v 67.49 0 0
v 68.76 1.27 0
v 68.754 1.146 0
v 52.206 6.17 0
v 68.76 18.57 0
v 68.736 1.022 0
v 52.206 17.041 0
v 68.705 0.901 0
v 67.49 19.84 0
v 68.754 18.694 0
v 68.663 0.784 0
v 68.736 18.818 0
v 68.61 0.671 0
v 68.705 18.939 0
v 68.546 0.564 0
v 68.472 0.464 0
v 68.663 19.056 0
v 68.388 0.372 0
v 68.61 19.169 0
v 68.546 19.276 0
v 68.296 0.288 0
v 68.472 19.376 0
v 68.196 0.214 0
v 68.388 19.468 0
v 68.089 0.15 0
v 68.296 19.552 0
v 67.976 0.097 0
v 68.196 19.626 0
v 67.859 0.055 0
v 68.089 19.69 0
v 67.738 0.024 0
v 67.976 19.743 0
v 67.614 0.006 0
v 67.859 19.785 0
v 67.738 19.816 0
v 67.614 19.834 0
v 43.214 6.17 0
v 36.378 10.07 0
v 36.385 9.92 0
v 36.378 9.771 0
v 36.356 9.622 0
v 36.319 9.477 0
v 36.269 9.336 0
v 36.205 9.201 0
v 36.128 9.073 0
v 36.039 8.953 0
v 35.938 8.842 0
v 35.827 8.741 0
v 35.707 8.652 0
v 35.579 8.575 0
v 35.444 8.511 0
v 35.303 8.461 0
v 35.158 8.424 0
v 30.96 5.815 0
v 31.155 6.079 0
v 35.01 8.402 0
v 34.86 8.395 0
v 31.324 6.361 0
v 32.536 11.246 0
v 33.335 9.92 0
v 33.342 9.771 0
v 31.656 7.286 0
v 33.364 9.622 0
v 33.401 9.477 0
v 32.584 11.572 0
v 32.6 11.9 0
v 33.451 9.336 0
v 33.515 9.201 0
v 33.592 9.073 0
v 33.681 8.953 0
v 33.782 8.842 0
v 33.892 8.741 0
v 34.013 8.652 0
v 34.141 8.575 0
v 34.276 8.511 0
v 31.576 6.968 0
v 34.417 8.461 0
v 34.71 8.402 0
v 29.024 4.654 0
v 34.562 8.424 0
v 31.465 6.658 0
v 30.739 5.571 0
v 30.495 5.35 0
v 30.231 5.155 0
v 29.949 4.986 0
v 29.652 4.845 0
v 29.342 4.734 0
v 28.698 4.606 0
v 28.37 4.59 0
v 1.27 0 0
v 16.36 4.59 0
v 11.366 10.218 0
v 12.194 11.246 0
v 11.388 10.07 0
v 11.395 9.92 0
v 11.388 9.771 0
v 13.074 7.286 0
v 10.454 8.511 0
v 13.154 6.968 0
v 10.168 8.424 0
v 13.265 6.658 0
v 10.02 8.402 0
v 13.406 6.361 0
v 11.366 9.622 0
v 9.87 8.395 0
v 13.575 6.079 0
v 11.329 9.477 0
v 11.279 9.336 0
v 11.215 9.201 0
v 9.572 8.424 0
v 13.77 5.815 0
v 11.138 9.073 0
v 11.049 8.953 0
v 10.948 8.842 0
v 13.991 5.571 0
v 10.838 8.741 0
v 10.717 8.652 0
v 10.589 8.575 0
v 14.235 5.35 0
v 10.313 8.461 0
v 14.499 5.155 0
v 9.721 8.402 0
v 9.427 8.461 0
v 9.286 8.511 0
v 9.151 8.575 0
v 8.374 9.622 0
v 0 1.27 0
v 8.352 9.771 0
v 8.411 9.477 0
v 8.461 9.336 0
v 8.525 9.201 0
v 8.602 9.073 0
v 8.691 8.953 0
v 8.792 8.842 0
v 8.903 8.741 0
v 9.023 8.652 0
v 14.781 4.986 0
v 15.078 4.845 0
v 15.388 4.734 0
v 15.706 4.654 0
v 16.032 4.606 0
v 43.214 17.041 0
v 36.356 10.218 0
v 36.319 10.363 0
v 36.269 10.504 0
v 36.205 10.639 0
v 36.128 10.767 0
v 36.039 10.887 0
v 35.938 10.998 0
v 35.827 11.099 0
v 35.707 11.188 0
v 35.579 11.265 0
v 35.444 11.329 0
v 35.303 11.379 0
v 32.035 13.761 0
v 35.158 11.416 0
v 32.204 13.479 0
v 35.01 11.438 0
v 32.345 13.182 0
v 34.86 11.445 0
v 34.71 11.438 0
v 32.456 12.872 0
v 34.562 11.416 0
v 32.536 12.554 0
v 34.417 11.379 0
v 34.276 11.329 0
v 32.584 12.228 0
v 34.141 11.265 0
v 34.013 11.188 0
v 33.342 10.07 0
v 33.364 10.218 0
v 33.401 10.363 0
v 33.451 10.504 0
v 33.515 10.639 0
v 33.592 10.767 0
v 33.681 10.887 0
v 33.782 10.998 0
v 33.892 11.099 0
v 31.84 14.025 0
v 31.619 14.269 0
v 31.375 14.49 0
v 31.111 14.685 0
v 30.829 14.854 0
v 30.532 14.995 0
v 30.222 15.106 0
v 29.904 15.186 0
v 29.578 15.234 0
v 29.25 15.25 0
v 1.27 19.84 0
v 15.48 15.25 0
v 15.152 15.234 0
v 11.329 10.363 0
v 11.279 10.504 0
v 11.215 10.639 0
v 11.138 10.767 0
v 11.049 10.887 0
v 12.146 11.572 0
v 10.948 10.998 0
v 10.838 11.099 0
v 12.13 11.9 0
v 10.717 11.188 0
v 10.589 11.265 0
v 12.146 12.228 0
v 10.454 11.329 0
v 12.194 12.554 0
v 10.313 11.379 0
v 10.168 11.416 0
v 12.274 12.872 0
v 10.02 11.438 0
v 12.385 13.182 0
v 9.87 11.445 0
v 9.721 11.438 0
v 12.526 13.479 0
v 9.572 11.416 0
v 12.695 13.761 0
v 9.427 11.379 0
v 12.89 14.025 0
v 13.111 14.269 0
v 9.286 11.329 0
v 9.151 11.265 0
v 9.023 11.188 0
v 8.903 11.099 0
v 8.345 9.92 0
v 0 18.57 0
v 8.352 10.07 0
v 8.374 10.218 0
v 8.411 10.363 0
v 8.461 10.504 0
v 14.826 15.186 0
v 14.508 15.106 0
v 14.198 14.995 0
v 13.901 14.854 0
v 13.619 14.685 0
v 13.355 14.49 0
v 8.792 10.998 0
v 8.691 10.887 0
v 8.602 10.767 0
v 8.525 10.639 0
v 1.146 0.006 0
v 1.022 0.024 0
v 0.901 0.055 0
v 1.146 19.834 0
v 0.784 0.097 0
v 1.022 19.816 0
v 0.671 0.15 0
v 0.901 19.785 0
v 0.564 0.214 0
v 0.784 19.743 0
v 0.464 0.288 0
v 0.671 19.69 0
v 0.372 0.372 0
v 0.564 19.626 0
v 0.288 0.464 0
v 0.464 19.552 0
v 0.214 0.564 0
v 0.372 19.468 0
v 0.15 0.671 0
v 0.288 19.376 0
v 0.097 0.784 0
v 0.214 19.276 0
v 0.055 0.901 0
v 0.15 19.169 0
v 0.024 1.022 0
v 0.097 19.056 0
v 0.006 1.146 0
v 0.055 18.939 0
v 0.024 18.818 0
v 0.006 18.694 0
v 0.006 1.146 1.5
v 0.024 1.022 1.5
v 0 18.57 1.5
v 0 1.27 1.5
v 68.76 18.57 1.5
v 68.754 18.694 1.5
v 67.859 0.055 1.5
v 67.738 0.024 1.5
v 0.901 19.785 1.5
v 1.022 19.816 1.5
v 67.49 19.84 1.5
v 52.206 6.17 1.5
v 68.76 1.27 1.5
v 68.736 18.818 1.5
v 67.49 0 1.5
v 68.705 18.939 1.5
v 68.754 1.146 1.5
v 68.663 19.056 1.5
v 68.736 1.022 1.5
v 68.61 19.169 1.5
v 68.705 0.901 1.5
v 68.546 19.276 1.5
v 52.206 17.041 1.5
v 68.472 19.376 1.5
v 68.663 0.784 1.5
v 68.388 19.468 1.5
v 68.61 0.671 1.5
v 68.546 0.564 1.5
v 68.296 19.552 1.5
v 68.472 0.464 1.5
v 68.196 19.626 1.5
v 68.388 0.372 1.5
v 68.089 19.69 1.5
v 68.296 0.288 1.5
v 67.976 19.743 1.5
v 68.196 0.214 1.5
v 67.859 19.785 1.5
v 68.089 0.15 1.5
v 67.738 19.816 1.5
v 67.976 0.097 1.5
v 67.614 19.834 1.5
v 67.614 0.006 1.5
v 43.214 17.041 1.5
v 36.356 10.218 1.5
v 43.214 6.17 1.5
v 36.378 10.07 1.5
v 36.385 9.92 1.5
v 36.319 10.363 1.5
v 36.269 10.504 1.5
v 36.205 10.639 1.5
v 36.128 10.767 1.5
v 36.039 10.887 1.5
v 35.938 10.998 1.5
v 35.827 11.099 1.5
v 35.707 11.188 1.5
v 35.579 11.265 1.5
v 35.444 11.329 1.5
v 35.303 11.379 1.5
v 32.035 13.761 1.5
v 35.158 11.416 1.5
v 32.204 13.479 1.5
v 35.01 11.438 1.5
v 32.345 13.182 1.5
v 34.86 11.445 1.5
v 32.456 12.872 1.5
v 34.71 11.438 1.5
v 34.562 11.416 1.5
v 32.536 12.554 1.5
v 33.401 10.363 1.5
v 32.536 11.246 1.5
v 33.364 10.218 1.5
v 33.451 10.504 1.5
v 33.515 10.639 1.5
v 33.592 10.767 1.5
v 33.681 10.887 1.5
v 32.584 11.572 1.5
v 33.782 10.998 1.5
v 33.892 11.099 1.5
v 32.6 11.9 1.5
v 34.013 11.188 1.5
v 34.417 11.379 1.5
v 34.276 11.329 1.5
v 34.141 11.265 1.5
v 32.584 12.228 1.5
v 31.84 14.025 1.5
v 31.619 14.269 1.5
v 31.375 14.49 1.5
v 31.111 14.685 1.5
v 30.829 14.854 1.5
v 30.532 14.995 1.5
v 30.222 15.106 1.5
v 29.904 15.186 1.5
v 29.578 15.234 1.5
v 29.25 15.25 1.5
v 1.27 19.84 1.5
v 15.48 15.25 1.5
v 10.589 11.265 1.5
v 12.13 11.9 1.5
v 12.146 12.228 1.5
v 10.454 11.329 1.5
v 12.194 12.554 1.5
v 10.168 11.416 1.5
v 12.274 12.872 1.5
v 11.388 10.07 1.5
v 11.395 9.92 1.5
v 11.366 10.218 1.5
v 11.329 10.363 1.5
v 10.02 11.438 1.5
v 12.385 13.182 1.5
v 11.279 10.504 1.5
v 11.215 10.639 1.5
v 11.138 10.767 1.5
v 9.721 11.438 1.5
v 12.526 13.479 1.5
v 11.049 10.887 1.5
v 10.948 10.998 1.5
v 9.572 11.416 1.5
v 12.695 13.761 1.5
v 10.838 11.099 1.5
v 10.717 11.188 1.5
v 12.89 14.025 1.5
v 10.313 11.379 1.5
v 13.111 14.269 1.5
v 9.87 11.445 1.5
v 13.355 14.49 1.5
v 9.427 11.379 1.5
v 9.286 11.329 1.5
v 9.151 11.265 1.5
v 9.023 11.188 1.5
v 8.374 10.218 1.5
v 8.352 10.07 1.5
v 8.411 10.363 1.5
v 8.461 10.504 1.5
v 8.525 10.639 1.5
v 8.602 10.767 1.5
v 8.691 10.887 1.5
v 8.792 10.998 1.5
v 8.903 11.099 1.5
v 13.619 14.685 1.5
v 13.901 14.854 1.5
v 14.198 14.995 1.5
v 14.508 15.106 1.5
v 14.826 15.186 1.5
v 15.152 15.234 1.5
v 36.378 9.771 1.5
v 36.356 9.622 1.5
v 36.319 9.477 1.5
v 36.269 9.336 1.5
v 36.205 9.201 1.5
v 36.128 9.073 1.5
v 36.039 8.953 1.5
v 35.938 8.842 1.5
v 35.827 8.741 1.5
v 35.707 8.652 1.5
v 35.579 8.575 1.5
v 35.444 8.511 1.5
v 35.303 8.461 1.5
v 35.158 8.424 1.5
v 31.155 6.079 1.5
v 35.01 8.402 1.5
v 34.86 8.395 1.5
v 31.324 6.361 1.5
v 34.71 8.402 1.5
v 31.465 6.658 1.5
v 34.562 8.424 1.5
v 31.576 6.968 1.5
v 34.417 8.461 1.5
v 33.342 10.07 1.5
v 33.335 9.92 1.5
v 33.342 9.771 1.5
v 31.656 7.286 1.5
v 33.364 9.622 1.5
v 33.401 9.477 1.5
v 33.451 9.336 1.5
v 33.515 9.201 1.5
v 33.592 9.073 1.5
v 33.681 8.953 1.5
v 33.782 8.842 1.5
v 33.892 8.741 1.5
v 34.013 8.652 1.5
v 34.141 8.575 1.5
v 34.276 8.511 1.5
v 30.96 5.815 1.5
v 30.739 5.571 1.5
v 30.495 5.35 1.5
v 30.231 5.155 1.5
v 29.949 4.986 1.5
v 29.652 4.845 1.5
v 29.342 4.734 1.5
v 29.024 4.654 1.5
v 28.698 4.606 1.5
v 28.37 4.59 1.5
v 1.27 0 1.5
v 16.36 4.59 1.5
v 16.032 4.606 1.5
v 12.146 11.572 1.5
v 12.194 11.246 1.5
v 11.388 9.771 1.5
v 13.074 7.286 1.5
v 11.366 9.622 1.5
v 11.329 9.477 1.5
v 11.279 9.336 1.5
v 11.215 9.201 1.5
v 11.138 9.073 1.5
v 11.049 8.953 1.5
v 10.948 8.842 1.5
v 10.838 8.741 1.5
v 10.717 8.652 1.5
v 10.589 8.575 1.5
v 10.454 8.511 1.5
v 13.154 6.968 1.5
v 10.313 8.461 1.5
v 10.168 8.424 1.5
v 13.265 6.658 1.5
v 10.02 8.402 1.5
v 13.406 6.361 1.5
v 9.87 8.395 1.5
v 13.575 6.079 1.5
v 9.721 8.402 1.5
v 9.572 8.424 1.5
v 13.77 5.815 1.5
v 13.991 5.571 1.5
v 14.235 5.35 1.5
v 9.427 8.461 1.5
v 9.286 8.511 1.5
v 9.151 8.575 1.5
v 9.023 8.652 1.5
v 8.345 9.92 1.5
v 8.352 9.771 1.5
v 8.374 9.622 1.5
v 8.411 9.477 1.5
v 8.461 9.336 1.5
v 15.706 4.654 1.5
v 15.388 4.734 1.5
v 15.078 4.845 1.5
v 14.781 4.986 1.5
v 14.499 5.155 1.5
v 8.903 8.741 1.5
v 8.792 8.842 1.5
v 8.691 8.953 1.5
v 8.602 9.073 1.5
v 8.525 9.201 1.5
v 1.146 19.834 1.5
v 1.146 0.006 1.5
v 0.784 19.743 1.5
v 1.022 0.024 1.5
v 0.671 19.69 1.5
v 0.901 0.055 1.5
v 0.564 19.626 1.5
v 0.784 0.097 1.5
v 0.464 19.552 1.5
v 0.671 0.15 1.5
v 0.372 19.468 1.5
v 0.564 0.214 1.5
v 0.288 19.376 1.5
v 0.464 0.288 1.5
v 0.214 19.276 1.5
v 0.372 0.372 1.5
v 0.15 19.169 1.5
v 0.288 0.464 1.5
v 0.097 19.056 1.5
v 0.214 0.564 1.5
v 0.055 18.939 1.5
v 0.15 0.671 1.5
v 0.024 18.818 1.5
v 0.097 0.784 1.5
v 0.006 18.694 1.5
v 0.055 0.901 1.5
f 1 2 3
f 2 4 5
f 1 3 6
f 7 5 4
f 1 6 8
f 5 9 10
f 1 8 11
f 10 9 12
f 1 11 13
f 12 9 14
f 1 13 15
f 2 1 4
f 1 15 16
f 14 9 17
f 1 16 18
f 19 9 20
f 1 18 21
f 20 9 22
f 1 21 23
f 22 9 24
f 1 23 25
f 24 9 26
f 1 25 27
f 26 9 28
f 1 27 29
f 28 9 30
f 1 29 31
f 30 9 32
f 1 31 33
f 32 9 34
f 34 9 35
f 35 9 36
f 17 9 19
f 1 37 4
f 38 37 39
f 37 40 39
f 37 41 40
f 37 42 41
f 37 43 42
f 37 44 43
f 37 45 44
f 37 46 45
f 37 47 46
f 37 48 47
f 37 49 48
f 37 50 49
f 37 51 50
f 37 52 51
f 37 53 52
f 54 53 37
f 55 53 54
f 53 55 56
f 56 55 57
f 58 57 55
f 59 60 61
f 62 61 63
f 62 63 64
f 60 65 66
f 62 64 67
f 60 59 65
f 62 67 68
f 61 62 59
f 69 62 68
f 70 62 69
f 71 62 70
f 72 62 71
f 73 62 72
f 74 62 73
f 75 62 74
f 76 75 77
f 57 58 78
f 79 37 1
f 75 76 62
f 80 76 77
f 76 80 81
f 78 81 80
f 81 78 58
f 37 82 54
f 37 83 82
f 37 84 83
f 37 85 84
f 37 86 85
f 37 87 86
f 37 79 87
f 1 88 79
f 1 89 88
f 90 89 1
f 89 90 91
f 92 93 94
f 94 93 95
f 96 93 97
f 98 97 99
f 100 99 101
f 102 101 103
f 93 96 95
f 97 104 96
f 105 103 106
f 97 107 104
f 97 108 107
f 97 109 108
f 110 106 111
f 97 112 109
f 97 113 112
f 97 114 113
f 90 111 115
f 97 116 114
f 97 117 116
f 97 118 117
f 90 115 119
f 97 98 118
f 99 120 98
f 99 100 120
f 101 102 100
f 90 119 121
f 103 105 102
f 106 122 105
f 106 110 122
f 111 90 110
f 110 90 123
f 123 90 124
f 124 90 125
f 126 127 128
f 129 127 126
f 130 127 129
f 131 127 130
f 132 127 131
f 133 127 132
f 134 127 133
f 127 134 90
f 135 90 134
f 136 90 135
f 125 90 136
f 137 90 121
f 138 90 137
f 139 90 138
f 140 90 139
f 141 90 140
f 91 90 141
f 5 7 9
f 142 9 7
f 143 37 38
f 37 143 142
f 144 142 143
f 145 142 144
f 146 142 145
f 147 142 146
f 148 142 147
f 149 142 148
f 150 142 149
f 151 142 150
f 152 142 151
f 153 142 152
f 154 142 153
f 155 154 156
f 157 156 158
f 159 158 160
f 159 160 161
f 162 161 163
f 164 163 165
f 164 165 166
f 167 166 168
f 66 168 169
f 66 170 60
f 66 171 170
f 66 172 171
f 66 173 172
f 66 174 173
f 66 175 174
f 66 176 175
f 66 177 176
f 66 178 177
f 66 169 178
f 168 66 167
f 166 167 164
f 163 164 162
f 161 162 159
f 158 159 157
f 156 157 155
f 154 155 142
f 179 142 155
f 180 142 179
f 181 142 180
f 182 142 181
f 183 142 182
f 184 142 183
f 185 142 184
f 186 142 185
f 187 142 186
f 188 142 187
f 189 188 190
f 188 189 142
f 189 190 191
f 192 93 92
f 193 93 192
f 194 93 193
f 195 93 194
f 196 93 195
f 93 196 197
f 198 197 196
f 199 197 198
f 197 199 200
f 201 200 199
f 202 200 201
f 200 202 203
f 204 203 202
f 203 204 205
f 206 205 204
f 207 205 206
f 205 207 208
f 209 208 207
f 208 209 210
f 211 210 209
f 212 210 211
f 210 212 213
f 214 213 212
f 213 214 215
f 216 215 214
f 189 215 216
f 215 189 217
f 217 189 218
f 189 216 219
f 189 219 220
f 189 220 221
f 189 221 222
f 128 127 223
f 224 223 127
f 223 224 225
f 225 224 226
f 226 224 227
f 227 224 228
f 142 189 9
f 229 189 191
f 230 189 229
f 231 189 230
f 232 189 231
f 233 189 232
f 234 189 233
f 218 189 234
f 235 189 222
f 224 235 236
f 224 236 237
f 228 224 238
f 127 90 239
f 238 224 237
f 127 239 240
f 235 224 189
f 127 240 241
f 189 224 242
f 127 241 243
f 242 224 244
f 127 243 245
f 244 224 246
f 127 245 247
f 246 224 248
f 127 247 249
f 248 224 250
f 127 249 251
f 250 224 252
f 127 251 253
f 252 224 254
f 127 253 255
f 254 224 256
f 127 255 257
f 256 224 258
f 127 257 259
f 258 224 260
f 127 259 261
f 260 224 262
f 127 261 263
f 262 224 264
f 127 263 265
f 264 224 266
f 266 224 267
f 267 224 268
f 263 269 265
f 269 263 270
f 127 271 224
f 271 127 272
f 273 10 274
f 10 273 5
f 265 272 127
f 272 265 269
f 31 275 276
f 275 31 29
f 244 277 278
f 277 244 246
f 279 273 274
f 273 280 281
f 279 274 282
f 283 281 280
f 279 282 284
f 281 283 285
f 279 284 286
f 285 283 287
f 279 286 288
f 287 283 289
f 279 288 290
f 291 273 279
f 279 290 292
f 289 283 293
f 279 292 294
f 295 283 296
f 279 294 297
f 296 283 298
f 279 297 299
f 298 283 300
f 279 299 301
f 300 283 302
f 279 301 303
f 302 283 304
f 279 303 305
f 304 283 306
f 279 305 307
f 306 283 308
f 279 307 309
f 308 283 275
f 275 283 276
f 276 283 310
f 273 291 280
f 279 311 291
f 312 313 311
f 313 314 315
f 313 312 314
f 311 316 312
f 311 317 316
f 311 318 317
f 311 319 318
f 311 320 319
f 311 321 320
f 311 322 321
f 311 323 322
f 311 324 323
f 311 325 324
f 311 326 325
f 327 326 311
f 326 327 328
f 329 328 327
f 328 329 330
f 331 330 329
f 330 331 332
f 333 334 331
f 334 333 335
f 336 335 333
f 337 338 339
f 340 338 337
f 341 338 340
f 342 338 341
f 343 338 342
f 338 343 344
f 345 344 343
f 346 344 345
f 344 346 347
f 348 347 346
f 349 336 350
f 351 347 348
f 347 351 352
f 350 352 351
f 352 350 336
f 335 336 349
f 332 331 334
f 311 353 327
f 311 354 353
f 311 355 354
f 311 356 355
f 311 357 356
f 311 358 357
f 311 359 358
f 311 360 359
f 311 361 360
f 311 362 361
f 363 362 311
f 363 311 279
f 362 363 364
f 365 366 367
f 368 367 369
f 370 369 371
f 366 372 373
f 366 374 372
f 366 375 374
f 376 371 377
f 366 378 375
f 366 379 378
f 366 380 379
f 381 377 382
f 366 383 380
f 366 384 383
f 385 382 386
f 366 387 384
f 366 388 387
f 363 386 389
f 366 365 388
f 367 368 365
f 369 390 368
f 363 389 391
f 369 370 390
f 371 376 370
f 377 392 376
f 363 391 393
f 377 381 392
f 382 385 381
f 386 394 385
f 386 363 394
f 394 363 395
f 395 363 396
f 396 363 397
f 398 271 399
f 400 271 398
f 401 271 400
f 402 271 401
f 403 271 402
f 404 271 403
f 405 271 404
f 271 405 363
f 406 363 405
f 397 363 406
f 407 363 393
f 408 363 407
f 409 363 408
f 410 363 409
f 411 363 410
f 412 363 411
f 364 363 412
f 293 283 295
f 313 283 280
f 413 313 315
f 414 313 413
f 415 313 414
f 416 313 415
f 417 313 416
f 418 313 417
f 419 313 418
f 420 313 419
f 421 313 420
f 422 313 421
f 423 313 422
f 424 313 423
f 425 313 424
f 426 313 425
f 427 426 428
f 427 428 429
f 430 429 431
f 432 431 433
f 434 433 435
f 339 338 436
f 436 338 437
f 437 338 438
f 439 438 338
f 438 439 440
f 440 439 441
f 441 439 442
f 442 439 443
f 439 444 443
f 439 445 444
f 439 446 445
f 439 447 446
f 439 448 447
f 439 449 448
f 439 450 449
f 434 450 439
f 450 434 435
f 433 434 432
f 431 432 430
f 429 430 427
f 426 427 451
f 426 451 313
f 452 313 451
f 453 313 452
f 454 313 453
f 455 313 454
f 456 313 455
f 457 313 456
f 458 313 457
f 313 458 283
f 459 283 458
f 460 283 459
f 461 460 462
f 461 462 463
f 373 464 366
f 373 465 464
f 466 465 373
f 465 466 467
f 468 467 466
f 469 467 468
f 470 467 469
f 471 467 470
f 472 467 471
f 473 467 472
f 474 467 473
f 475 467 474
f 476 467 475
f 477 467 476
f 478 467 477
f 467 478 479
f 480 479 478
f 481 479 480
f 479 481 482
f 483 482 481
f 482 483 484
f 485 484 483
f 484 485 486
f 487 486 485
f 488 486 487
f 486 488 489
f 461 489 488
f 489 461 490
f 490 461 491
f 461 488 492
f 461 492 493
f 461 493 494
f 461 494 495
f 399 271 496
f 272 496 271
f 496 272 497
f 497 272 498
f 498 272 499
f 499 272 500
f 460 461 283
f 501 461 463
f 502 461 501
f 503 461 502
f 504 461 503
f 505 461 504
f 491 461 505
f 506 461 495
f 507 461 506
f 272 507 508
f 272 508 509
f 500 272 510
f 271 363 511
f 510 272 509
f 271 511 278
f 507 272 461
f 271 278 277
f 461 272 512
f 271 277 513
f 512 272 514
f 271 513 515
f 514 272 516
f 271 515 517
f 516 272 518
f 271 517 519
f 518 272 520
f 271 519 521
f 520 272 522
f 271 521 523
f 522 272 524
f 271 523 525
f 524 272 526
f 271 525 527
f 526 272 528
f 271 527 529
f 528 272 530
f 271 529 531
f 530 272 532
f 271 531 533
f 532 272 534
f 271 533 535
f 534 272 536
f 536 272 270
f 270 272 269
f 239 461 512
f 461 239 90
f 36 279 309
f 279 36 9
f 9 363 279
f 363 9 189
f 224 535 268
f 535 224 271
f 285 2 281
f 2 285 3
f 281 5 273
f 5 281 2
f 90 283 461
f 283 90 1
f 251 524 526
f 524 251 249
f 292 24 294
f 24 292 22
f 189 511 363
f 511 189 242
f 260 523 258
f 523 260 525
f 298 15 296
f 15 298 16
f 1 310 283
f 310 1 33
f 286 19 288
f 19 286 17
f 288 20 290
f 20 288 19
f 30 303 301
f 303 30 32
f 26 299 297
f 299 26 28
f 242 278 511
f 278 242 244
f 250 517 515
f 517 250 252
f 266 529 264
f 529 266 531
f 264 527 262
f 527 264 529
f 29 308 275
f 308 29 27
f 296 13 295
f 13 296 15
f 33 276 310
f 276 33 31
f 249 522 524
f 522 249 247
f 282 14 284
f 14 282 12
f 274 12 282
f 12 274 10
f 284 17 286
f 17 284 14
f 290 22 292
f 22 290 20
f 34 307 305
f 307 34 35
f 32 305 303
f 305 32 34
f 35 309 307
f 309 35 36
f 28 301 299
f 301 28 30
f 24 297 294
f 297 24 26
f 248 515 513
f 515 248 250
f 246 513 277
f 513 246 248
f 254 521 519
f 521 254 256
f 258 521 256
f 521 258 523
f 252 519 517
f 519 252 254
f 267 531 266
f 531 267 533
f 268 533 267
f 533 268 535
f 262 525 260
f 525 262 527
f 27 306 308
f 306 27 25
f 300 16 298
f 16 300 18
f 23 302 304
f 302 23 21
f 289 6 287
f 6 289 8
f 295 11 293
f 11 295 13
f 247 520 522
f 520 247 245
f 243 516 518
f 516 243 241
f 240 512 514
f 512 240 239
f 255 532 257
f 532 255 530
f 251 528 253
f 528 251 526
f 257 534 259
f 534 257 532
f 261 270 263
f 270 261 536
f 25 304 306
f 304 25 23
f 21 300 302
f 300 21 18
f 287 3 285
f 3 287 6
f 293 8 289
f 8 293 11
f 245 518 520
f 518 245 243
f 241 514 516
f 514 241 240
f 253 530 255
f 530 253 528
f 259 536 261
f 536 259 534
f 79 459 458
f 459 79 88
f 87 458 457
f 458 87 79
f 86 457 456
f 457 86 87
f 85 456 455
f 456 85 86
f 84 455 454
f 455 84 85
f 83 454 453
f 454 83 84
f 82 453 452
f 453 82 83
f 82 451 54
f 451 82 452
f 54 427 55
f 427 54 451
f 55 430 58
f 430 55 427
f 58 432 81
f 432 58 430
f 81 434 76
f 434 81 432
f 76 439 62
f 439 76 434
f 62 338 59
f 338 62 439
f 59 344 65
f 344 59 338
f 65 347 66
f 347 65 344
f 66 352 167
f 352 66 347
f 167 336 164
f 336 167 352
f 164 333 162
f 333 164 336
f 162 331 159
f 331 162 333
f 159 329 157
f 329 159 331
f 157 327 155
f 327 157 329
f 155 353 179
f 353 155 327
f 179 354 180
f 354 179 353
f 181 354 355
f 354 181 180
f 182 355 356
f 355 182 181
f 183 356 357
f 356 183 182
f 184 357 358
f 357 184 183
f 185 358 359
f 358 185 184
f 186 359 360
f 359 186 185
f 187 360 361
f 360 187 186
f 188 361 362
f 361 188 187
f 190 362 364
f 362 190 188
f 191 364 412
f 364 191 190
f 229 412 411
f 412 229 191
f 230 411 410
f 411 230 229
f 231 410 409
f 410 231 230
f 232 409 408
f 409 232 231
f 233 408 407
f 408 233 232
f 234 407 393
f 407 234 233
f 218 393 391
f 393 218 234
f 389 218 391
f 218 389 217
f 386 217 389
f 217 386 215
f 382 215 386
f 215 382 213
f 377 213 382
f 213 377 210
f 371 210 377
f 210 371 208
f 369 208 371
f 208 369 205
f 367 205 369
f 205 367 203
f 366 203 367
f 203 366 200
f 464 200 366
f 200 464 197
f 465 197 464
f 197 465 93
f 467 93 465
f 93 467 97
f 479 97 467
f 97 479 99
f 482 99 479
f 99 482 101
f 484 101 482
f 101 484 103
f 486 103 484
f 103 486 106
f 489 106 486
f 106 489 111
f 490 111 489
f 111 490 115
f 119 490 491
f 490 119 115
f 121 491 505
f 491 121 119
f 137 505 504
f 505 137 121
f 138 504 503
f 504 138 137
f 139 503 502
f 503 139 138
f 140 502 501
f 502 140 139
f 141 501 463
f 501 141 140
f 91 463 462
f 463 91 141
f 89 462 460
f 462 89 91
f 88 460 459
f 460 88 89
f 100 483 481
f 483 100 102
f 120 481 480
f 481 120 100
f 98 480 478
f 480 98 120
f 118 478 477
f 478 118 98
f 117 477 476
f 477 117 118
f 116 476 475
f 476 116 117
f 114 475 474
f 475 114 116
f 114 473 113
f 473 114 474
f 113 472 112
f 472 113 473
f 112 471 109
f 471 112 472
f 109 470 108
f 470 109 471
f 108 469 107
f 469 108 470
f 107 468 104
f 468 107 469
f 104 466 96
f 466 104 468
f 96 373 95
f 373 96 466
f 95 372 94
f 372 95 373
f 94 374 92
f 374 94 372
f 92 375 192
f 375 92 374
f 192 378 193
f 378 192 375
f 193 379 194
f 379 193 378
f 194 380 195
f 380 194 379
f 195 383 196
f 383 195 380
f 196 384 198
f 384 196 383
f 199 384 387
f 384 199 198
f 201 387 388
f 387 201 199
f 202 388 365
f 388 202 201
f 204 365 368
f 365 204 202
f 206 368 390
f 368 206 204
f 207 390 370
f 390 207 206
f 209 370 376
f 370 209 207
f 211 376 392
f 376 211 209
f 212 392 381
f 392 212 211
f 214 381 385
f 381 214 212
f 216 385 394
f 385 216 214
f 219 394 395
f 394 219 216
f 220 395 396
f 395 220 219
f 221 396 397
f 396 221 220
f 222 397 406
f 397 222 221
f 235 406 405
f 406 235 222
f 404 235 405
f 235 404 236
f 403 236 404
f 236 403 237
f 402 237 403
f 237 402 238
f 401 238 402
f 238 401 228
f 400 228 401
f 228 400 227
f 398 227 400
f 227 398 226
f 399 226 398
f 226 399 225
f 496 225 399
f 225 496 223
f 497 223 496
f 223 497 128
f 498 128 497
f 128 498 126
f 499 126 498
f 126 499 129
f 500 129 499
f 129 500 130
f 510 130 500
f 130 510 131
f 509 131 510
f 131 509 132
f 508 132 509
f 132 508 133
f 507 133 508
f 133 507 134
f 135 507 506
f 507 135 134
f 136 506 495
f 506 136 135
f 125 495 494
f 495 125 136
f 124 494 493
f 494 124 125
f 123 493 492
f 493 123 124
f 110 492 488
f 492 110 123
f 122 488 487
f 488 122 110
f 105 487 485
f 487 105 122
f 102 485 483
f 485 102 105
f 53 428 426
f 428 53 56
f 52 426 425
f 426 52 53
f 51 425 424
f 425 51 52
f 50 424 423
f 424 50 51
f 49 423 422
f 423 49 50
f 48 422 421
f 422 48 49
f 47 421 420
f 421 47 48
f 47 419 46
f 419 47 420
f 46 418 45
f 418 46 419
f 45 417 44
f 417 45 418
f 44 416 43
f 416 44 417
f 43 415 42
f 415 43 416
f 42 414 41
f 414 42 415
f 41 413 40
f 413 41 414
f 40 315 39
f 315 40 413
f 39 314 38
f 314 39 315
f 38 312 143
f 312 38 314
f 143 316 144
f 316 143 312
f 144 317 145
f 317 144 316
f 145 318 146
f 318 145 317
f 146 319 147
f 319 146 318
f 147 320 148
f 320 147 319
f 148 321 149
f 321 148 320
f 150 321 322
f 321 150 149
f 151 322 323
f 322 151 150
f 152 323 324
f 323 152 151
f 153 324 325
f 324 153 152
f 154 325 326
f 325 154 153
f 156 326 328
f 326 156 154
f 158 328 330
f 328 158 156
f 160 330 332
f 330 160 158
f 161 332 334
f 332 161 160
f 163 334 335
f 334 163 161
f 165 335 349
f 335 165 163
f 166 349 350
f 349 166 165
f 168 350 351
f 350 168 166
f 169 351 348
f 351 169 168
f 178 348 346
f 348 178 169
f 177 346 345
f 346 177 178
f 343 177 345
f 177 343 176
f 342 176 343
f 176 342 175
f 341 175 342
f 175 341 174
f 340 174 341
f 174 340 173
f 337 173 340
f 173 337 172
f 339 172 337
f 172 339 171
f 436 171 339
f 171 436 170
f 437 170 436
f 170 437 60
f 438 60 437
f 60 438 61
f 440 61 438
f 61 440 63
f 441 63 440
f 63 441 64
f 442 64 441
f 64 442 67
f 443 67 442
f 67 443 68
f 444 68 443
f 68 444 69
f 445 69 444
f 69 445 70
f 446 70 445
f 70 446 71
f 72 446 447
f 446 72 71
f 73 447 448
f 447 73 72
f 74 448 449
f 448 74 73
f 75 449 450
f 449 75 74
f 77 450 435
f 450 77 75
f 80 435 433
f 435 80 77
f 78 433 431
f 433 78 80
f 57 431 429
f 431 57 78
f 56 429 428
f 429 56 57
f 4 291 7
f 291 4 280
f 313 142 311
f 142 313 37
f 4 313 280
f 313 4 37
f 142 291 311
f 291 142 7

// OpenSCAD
$fn=64;
eps = 0.04;
inch = 25.4;

panel_x = 68.76;
panel_y = 19.84;
panel_z = 1.5;
panel_r = 0.05 * inch;

barrel_x = 0.354*inch;
barrel_y = 0.428*inch;

module dsub(c,e,a)
{
   r=3.35;
   h=3.96;
   md=3.05;
   hull() {
      translate([-c/2,h/2,0])
         circle(r=r);
      translate([c/2,h/2,0])
         circle(r=r);
      translate([-e/2,-h/2,0])
         circle(r=r);
      translate([e/2,-h/2,0])
         circle(r=r);
   }
   translate([-a/2,0,0])
      circle(d=md);
   translate([a/2,0,0])
      circle(d=md);
}

module dsub9() {
   dsub(c=13.77,e=12.01,a=24.99);
}

difference() {
   linear_extrude(height=panel_z) {
      hull() {
         translate([panel_r, panel_r, 0]) {
            circle(r=panel_r);
         }
         translate([panel_x-panel_r, panel_r, 0]) {
            circle(r=panel_r);
         }
         translate([panel_x-panel_r, panel_y-panel_r, 0]) {
            circle(r=panel_r);
         }
         translate([panel_r, panel_y-panel_r, 0]) {
            circle(r=panel_r);
         }
      }
   }
   translate([panel_x/2 - 12.015, panel_y/2, -eps] ) {
      linear_extrude(height=panel_z+2*eps) {
         dsub9();
      }
   }
   translate([panel_x/2+13.33,6.17+barrel_y/2,-eps]) {
      linear_extrude(height=panel_z+2*eps) {
         square([barrel_x, barrel_y],center=true);
      }
   }
}
